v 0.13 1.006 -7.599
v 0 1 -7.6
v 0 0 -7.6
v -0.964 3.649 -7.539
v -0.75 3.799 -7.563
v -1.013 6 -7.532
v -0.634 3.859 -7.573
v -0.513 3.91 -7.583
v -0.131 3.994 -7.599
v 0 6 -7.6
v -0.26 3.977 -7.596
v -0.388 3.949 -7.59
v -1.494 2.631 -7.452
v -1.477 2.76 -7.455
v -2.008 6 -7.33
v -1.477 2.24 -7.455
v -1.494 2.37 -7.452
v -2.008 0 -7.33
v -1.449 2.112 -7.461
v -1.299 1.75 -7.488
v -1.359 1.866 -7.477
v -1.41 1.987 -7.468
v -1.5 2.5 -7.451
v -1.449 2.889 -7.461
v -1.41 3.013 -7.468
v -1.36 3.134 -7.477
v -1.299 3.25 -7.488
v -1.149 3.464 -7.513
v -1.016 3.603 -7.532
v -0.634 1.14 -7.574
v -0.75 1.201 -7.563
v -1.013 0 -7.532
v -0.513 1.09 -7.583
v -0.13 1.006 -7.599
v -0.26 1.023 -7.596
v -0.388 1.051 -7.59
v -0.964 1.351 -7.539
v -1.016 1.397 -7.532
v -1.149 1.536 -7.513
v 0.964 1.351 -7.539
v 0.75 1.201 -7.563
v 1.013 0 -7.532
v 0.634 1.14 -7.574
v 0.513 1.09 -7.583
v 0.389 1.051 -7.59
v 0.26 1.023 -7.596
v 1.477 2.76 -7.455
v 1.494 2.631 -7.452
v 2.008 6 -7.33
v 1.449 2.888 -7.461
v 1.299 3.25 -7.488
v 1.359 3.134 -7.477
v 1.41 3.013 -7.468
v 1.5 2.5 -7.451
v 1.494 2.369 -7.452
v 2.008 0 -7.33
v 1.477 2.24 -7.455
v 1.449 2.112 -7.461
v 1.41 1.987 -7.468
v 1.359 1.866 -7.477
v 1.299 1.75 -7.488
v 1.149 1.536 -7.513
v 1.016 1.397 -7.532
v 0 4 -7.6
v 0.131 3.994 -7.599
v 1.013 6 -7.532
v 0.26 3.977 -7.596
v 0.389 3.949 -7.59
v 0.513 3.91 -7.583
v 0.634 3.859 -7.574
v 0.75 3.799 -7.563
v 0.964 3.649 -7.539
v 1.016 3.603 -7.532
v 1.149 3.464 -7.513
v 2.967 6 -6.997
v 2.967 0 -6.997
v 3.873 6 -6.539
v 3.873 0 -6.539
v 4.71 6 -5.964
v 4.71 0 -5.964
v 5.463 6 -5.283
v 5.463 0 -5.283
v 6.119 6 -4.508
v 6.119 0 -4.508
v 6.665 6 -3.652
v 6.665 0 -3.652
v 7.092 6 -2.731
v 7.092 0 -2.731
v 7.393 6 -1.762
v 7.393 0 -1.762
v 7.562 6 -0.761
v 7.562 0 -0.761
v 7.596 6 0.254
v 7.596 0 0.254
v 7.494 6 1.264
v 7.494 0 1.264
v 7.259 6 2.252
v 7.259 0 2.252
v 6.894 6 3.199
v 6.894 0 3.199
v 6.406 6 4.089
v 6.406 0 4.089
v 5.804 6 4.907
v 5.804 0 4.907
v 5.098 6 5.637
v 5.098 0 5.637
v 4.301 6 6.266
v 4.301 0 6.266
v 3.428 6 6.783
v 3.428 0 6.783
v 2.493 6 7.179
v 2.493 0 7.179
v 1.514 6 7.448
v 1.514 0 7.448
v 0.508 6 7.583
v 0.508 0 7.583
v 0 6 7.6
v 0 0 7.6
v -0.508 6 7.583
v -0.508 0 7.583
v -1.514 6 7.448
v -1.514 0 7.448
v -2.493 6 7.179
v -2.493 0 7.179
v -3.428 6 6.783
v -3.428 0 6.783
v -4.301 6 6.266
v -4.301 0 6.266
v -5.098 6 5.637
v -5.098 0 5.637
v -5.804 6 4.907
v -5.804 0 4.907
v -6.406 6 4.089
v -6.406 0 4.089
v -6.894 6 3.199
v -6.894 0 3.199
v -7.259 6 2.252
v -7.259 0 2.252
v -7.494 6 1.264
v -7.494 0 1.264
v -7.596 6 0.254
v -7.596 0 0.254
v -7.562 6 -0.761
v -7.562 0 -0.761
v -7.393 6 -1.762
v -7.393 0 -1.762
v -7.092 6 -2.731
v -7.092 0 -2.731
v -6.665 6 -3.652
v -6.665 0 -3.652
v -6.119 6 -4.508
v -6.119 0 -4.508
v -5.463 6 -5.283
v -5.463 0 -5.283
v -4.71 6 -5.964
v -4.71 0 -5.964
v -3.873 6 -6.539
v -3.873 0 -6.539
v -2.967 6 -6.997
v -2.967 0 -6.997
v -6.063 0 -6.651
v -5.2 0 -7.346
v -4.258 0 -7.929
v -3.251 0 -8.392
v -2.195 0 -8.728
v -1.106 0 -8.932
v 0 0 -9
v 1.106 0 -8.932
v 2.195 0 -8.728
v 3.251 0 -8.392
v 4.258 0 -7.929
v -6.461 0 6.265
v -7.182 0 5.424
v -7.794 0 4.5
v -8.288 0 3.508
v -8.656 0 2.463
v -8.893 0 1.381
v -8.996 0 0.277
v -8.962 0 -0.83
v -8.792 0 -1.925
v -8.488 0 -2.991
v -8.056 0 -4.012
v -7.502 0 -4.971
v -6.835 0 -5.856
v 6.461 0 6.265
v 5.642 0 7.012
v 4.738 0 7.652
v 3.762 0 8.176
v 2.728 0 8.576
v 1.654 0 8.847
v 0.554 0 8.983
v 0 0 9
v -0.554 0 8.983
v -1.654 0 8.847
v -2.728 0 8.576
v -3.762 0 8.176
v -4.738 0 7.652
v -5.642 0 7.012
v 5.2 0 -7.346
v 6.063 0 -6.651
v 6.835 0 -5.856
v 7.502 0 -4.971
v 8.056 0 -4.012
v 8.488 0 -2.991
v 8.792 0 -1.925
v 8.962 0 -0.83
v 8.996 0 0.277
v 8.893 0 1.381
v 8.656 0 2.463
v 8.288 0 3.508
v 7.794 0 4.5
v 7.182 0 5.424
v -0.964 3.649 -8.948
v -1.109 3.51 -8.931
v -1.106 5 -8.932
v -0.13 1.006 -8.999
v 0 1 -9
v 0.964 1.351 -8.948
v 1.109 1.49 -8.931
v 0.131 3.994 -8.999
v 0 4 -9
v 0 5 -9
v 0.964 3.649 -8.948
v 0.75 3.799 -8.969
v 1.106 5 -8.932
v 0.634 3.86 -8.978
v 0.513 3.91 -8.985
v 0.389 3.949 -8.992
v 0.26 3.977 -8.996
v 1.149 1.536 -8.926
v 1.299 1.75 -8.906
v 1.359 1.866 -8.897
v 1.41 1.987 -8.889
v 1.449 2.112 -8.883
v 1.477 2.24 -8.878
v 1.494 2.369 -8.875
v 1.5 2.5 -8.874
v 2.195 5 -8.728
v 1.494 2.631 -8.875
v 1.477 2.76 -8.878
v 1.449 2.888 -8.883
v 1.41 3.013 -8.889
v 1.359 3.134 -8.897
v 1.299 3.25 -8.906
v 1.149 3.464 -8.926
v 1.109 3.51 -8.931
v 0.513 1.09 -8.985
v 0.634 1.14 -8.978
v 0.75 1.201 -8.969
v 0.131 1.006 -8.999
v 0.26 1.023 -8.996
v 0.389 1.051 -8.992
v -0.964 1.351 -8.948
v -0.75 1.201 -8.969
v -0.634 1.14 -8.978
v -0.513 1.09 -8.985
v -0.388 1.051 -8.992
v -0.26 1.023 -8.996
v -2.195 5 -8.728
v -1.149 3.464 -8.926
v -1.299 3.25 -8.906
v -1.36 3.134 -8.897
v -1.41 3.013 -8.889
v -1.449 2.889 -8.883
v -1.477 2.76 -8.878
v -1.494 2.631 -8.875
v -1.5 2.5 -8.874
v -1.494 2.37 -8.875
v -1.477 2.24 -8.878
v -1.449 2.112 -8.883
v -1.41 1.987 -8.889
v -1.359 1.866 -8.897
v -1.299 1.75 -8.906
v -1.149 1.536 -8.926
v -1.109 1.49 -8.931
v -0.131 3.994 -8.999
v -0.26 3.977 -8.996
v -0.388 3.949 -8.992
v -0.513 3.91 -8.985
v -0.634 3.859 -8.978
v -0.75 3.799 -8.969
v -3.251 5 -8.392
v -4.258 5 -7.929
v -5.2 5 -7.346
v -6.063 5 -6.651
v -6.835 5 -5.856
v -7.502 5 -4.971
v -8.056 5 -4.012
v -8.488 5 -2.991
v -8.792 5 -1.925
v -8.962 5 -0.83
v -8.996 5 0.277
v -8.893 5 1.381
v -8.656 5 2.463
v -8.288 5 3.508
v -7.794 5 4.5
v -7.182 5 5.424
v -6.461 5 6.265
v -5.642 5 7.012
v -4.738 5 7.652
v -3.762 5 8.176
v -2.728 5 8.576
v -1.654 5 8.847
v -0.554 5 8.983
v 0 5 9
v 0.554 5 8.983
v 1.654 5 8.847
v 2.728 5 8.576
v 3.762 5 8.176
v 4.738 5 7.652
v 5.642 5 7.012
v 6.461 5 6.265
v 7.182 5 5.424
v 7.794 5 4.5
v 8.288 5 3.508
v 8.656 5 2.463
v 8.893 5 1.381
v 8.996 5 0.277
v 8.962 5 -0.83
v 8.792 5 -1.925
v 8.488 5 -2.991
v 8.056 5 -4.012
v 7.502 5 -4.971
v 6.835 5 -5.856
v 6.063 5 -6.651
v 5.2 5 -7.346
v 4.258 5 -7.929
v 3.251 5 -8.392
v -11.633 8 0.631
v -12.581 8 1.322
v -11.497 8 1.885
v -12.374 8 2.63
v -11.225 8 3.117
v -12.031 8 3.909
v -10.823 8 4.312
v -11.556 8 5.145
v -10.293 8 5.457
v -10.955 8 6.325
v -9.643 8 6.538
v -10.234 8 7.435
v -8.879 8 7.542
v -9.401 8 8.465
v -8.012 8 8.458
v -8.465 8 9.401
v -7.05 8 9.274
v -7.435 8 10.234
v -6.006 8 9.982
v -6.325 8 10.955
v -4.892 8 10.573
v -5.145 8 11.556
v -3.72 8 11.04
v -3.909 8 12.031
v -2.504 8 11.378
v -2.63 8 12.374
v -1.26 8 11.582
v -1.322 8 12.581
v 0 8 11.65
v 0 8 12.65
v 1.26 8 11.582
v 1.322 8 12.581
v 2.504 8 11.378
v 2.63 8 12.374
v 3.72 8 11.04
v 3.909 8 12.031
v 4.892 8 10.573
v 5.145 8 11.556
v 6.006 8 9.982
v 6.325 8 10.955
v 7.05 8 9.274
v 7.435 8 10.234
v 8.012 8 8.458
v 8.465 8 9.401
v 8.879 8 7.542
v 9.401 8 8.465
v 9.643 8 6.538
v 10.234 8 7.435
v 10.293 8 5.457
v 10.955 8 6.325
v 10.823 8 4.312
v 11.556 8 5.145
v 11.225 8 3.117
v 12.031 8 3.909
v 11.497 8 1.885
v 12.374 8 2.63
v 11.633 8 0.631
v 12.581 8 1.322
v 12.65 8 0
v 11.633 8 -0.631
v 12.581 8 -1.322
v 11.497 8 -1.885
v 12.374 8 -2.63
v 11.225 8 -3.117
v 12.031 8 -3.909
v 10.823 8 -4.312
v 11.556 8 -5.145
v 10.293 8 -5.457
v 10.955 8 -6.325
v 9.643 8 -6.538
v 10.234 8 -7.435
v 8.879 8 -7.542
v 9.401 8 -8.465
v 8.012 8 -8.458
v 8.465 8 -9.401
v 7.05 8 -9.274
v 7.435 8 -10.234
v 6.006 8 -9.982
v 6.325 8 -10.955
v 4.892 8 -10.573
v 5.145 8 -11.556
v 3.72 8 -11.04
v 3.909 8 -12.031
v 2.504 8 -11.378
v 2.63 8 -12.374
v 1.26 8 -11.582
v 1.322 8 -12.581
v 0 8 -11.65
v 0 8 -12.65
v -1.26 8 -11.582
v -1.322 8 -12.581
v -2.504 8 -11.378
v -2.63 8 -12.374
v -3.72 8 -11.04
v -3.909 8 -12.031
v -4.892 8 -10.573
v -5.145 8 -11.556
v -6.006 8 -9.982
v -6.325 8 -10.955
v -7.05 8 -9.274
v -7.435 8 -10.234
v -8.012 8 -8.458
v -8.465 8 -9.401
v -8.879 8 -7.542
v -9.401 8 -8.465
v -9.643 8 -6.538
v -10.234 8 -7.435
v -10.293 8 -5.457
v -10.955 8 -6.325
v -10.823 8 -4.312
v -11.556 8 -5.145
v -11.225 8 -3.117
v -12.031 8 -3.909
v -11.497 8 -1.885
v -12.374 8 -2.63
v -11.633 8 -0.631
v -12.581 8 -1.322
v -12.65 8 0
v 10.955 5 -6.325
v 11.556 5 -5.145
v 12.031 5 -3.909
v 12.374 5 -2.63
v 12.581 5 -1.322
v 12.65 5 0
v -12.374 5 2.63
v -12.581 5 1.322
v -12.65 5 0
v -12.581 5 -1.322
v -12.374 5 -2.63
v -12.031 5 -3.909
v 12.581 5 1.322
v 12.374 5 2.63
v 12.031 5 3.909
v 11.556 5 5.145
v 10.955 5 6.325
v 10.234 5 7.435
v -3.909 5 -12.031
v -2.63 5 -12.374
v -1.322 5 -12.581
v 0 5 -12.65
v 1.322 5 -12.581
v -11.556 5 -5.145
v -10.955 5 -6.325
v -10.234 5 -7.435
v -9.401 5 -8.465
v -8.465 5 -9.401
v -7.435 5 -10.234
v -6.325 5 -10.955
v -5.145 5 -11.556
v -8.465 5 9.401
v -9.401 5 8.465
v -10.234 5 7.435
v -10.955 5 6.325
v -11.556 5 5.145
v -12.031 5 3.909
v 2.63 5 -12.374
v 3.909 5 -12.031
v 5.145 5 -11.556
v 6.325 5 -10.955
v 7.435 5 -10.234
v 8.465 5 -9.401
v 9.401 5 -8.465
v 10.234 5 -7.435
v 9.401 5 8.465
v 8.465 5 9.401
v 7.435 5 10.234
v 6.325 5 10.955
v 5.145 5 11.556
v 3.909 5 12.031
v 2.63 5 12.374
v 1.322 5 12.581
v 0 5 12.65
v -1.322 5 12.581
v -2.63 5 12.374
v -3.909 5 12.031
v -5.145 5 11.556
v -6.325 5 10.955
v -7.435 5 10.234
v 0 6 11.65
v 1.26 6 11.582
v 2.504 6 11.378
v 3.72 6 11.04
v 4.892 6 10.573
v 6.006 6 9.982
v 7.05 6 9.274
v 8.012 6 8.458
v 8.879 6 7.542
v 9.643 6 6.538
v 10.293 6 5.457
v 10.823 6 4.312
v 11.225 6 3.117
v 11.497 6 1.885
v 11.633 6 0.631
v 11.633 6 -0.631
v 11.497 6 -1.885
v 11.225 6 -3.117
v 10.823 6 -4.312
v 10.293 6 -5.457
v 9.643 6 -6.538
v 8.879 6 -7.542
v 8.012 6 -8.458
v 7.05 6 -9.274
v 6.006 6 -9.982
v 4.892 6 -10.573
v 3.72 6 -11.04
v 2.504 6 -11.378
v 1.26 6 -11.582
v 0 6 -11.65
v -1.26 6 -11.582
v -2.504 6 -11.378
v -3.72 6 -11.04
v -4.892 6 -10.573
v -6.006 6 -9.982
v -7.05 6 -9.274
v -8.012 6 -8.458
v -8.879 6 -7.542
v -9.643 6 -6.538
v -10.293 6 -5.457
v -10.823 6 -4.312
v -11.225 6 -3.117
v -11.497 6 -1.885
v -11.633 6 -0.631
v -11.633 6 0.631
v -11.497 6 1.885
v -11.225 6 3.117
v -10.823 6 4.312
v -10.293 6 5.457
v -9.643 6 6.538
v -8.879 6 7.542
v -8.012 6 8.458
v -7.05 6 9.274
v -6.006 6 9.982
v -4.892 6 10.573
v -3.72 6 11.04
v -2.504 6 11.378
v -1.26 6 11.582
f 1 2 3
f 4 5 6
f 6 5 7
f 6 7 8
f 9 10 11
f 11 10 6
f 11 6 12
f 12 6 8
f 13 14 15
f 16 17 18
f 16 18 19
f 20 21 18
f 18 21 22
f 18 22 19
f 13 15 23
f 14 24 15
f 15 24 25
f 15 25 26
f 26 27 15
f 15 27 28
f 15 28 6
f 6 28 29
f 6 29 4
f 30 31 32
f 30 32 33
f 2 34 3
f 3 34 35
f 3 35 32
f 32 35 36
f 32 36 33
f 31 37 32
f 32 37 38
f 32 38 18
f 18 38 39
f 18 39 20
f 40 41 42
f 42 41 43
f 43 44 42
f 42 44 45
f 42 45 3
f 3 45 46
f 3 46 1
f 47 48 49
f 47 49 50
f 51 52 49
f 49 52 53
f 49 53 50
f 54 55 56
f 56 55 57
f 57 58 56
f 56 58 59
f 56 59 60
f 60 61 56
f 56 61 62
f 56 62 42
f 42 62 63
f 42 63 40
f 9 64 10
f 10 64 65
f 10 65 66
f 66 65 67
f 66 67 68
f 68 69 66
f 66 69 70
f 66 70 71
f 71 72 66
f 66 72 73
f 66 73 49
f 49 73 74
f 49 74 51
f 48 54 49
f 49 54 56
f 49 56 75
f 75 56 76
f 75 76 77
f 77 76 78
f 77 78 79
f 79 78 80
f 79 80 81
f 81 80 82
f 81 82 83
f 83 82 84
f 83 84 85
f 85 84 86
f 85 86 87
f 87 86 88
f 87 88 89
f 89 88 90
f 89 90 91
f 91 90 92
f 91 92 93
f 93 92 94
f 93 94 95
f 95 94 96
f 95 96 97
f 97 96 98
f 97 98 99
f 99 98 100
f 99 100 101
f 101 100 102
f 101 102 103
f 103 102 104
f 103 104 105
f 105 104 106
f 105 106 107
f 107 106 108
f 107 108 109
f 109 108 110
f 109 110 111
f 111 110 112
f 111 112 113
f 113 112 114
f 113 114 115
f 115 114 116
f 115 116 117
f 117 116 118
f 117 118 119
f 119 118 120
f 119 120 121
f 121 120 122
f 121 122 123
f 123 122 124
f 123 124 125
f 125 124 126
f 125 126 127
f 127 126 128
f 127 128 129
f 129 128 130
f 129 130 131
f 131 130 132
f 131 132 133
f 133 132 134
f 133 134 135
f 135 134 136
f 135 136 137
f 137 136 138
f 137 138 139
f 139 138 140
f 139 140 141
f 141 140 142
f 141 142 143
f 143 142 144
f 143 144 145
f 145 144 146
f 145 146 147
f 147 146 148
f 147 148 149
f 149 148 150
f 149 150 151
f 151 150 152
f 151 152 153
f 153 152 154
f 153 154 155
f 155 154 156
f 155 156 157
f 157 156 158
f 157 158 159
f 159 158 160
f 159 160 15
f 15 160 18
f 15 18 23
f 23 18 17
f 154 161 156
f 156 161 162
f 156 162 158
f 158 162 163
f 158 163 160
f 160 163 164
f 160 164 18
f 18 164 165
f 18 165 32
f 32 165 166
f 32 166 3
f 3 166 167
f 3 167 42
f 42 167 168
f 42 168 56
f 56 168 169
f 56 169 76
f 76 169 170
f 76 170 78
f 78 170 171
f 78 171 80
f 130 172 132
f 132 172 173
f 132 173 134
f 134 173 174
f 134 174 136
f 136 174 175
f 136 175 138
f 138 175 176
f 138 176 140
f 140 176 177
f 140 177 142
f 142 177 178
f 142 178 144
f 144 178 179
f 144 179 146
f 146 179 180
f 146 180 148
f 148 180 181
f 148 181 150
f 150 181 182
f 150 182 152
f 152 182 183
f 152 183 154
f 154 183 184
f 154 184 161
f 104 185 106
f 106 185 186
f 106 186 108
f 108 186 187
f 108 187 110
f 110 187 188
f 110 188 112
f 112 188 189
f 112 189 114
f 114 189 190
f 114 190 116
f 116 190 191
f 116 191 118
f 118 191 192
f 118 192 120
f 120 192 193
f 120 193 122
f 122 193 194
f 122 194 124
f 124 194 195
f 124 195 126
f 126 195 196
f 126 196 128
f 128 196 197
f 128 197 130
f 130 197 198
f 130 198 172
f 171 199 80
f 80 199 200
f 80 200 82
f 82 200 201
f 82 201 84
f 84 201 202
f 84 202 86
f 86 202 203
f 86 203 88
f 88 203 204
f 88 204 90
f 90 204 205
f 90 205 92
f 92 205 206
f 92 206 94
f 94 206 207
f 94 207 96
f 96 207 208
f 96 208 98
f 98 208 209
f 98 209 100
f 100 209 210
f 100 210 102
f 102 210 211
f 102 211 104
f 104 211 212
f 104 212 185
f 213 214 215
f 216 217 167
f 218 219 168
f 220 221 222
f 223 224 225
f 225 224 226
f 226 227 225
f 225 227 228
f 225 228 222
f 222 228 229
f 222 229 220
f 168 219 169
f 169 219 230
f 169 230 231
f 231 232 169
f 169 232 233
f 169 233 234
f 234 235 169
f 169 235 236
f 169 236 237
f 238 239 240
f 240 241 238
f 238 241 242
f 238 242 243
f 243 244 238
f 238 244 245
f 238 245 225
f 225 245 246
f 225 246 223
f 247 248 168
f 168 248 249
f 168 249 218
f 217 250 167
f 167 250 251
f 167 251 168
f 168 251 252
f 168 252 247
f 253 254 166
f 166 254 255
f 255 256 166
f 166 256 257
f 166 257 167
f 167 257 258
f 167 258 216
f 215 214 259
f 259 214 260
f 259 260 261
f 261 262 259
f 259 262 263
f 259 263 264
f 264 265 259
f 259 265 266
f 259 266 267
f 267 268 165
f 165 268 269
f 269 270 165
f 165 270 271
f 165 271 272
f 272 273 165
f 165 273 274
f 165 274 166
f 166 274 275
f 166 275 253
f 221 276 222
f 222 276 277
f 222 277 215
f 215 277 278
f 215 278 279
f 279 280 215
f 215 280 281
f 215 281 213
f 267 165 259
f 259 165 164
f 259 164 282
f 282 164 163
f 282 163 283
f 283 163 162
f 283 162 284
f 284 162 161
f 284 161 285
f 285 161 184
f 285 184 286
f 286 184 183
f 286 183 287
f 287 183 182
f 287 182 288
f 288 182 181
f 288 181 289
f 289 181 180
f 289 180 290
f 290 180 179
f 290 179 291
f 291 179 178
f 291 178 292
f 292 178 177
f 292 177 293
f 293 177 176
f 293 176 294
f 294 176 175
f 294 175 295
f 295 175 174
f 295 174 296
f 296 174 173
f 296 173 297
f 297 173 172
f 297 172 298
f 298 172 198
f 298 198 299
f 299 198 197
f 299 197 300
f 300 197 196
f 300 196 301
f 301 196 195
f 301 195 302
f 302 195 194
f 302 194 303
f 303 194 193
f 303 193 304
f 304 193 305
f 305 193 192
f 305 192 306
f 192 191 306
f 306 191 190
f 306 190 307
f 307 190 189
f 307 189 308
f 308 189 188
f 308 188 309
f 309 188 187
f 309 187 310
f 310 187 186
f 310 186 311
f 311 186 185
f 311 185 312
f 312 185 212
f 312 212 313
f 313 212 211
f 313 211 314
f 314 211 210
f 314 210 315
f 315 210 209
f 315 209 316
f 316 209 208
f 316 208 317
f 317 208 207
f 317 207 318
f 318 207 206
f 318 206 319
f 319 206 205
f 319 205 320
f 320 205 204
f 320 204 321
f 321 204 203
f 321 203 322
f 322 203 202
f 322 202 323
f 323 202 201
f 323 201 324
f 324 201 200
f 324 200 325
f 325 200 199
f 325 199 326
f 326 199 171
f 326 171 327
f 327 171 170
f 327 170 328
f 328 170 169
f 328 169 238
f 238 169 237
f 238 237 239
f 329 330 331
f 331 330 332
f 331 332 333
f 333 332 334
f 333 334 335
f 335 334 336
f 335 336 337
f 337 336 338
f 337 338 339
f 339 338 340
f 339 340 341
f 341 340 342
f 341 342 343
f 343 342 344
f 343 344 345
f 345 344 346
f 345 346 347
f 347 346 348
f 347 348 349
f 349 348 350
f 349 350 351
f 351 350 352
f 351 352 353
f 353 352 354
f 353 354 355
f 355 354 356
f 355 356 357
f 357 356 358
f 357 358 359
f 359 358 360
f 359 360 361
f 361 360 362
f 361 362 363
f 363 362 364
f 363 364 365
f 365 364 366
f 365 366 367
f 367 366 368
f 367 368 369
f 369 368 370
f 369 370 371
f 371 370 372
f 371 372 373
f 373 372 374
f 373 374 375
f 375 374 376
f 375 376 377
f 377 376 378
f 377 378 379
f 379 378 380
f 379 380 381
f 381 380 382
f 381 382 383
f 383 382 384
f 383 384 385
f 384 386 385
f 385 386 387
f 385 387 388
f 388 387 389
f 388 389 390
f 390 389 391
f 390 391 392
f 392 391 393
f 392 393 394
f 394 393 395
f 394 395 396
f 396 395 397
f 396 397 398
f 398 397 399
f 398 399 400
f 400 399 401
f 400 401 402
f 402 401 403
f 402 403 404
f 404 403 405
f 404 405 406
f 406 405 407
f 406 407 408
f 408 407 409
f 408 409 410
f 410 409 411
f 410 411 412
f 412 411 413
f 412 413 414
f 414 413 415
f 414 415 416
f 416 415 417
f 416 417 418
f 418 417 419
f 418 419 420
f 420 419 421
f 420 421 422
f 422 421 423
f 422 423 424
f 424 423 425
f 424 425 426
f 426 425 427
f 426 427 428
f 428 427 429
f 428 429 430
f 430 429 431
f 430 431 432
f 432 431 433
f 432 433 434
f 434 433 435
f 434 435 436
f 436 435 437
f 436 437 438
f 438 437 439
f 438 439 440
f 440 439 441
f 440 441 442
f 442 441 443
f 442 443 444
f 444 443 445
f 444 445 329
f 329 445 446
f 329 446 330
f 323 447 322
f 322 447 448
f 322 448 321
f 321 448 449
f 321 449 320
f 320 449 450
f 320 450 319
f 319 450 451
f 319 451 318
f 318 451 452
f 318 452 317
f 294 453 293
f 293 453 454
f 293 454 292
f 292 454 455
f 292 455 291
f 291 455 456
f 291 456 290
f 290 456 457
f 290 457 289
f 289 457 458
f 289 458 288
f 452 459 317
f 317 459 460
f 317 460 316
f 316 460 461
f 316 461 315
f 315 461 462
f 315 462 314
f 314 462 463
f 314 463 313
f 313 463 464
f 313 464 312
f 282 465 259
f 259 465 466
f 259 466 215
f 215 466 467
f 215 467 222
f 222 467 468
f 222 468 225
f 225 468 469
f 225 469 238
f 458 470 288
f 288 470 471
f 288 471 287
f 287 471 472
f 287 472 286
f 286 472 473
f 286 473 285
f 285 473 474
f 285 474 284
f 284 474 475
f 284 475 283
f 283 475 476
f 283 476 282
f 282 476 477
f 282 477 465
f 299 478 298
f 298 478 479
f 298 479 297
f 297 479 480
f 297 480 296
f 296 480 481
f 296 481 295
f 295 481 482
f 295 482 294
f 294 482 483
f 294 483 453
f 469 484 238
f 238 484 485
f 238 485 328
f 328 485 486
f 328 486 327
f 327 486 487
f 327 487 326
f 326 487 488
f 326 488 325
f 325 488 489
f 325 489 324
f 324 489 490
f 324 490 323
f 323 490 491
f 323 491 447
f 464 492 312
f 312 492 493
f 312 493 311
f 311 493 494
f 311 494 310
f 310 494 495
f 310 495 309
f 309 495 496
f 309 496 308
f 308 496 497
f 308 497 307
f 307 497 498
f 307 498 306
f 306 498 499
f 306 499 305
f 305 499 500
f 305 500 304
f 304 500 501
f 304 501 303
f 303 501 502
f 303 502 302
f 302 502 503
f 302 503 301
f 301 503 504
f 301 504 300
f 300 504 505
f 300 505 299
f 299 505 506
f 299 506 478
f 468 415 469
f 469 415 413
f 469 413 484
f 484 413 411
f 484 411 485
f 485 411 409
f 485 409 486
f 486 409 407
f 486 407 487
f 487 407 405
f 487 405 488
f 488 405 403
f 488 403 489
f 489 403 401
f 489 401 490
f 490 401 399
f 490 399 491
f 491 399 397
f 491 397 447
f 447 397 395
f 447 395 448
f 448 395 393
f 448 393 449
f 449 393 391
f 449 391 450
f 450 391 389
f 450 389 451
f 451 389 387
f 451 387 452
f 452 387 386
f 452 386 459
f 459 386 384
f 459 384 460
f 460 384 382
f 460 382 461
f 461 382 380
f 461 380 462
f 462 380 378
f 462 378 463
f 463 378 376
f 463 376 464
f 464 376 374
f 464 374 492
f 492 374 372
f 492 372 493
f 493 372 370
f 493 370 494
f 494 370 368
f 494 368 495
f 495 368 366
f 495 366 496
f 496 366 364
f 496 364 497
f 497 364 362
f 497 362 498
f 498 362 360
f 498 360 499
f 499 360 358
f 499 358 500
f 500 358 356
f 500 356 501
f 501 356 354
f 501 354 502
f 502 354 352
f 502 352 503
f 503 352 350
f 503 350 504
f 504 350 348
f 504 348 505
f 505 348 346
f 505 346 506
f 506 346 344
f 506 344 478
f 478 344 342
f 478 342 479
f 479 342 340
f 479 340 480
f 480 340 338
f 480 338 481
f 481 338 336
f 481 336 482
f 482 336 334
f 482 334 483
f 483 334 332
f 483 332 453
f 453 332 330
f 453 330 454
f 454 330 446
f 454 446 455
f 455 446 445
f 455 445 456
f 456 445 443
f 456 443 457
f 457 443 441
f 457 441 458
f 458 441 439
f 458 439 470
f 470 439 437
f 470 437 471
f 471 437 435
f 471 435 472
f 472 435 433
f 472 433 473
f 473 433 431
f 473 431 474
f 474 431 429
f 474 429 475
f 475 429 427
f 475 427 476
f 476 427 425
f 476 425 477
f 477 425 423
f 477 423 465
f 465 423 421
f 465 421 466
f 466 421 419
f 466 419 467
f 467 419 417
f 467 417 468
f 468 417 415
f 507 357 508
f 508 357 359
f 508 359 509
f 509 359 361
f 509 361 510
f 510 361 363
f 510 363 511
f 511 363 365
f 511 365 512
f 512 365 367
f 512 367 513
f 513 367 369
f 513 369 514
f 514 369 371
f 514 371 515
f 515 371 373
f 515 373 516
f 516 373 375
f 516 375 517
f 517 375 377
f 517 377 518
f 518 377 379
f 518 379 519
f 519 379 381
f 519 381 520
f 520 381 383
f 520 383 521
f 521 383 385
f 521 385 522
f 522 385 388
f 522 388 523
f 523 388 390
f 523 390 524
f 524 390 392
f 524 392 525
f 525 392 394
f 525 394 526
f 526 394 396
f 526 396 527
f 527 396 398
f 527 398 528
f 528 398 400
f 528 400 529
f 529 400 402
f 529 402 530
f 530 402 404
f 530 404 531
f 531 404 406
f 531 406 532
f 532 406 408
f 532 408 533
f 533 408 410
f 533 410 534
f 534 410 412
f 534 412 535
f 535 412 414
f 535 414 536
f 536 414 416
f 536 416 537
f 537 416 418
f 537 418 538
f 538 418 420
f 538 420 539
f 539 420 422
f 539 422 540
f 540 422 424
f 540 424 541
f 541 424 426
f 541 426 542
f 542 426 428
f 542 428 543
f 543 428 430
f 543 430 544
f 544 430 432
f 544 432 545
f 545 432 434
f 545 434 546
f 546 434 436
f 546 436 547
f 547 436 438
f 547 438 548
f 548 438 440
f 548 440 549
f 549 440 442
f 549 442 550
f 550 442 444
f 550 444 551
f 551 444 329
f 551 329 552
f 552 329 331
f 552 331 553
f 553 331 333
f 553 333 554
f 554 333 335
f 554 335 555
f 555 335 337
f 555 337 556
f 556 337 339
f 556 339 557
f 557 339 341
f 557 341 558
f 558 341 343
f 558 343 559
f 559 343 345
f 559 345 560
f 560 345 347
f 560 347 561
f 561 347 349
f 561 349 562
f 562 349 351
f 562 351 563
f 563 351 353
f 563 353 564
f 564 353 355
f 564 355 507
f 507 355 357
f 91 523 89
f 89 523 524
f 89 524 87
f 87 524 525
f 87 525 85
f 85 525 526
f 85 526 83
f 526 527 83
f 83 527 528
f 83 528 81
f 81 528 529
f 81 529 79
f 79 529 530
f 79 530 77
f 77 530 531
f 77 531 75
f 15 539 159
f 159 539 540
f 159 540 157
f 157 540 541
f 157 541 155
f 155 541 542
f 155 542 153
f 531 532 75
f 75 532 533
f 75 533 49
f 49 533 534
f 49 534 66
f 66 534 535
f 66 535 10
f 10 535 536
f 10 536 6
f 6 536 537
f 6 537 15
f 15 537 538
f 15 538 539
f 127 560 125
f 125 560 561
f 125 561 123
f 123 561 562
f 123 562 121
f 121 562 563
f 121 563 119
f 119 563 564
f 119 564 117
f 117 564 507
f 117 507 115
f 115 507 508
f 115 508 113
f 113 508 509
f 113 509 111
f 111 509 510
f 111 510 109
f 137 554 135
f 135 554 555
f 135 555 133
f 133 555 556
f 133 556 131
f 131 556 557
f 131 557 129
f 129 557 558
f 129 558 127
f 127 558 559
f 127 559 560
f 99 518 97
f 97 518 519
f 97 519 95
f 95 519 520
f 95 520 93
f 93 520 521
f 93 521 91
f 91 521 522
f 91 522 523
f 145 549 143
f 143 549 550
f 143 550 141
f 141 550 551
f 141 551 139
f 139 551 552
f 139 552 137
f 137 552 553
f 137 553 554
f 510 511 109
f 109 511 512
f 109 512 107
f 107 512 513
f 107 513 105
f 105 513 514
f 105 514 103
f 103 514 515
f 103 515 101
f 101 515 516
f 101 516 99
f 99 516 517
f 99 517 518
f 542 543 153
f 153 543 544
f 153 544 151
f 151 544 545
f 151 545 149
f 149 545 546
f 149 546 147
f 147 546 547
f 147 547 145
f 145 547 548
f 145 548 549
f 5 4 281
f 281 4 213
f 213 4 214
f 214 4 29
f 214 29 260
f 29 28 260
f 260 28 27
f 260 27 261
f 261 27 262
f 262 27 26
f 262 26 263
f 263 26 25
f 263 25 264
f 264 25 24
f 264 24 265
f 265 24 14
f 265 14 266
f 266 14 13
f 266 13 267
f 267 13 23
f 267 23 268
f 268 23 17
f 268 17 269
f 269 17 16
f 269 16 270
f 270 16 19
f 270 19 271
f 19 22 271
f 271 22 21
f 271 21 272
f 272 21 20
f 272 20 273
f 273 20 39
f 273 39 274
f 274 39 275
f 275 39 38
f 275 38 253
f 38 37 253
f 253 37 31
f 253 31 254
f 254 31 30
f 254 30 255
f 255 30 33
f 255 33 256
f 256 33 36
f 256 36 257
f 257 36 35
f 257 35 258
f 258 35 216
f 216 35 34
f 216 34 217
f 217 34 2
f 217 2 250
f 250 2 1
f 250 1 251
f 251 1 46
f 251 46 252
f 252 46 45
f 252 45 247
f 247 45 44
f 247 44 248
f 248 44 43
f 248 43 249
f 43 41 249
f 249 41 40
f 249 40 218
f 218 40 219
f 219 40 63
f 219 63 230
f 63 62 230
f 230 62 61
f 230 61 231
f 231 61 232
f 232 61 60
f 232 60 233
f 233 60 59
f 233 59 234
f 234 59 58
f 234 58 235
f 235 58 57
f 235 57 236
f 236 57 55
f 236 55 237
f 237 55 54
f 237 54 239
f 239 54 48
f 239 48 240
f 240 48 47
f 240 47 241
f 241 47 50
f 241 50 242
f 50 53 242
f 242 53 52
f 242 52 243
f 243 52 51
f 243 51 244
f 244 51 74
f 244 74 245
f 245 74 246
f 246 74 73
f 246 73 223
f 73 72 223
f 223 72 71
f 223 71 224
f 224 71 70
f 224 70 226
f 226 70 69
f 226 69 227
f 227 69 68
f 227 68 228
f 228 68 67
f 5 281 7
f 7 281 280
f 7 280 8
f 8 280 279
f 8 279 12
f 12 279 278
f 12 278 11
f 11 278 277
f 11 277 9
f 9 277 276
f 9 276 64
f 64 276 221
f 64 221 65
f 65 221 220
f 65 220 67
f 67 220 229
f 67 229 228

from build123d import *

# Parameters (mm, degrees)
ESQUISSE1_R             = 9
ESQUISSE1_R_2           = 7.6
BOSS_EXTRU_1_DEPTH      = 5
ESQUISSE2_R             = 12.65
ESQUISSE2_R_2           = 7.6
BOSS_EXTRU_2_DEPTH      = 3
ESQUISSE3_R             = 11.65
ENL_V_MAT_EXTRU_1_DEPTH = 2
ESQUISSE4_R             = 1.5
ENL_V_MAT_EXTRU_2_DEPTH = 12


with BuildPart() as part:
    # Esquisse1 → Boss.-Extru.1 (new body)
    with BuildSketch(Plane(origin=(0, 0, 0), x_dir=(1, 0, 0), z_dir=(0, 1, 0))):
        with Locations(Location((0, 0, 0), (0, 0, 270))):
            Circle(ESQUISSE1_R)
        with Locations(Location((0, 0, 0), (0, 0, 270))):
            Circle(ESQUISSE1_R_2, mode=Mode.SUBTRACT)
    extrude(amount=BOSS_EXTRU_1_DEPTH)

    # Esquisse2 → Boss.-Extru.2 (add)
    with BuildSketch(Plane(origin=(0, 5, 0), x_dir=(1, 0, 0), z_dir=(0, 1, 0))):
        with Locations(Location((0, 0, 0), (0, 0, 270))):
            Circle(ESQUISSE2_R)
        with Locations(Location((0, 0, 0), (0, 0, 270))):
            Circle(ESQUISSE2_R_2, mode=Mode.SUBTRACT)
    extrude(amount=BOSS_EXTRU_2_DEPTH)

    # Esquisse3 → Enlèv. mat.-Extru.1 (cut)
    with BuildSketch(Plane(origin=(0, 8, 0), x_dir=(1, 0, 0), z_dir=(0, 1, 0))):
        with Locations(Location((0, 0, 0), (0, 0, 270))):
            Circle(ESQUISSE3_R)
    extrude(amount=-ENL_V_MAT_EXTRU_1_DEPTH, mode=Mode.SUBTRACT)

    # Esquisse4 → Enlèv. mat.-Extru.2 (cut)
    with BuildSketch(Plane.XY):
        with Locations(Location((0, 2.5, 0), (0, 0, 90))):
            Circle(ESQUISSE4_R)
    extrude(amount=-ENL_V_MAT_EXTRU_2_DEPTH, mode=Mode.SUBTRACT)


solid = part.part
